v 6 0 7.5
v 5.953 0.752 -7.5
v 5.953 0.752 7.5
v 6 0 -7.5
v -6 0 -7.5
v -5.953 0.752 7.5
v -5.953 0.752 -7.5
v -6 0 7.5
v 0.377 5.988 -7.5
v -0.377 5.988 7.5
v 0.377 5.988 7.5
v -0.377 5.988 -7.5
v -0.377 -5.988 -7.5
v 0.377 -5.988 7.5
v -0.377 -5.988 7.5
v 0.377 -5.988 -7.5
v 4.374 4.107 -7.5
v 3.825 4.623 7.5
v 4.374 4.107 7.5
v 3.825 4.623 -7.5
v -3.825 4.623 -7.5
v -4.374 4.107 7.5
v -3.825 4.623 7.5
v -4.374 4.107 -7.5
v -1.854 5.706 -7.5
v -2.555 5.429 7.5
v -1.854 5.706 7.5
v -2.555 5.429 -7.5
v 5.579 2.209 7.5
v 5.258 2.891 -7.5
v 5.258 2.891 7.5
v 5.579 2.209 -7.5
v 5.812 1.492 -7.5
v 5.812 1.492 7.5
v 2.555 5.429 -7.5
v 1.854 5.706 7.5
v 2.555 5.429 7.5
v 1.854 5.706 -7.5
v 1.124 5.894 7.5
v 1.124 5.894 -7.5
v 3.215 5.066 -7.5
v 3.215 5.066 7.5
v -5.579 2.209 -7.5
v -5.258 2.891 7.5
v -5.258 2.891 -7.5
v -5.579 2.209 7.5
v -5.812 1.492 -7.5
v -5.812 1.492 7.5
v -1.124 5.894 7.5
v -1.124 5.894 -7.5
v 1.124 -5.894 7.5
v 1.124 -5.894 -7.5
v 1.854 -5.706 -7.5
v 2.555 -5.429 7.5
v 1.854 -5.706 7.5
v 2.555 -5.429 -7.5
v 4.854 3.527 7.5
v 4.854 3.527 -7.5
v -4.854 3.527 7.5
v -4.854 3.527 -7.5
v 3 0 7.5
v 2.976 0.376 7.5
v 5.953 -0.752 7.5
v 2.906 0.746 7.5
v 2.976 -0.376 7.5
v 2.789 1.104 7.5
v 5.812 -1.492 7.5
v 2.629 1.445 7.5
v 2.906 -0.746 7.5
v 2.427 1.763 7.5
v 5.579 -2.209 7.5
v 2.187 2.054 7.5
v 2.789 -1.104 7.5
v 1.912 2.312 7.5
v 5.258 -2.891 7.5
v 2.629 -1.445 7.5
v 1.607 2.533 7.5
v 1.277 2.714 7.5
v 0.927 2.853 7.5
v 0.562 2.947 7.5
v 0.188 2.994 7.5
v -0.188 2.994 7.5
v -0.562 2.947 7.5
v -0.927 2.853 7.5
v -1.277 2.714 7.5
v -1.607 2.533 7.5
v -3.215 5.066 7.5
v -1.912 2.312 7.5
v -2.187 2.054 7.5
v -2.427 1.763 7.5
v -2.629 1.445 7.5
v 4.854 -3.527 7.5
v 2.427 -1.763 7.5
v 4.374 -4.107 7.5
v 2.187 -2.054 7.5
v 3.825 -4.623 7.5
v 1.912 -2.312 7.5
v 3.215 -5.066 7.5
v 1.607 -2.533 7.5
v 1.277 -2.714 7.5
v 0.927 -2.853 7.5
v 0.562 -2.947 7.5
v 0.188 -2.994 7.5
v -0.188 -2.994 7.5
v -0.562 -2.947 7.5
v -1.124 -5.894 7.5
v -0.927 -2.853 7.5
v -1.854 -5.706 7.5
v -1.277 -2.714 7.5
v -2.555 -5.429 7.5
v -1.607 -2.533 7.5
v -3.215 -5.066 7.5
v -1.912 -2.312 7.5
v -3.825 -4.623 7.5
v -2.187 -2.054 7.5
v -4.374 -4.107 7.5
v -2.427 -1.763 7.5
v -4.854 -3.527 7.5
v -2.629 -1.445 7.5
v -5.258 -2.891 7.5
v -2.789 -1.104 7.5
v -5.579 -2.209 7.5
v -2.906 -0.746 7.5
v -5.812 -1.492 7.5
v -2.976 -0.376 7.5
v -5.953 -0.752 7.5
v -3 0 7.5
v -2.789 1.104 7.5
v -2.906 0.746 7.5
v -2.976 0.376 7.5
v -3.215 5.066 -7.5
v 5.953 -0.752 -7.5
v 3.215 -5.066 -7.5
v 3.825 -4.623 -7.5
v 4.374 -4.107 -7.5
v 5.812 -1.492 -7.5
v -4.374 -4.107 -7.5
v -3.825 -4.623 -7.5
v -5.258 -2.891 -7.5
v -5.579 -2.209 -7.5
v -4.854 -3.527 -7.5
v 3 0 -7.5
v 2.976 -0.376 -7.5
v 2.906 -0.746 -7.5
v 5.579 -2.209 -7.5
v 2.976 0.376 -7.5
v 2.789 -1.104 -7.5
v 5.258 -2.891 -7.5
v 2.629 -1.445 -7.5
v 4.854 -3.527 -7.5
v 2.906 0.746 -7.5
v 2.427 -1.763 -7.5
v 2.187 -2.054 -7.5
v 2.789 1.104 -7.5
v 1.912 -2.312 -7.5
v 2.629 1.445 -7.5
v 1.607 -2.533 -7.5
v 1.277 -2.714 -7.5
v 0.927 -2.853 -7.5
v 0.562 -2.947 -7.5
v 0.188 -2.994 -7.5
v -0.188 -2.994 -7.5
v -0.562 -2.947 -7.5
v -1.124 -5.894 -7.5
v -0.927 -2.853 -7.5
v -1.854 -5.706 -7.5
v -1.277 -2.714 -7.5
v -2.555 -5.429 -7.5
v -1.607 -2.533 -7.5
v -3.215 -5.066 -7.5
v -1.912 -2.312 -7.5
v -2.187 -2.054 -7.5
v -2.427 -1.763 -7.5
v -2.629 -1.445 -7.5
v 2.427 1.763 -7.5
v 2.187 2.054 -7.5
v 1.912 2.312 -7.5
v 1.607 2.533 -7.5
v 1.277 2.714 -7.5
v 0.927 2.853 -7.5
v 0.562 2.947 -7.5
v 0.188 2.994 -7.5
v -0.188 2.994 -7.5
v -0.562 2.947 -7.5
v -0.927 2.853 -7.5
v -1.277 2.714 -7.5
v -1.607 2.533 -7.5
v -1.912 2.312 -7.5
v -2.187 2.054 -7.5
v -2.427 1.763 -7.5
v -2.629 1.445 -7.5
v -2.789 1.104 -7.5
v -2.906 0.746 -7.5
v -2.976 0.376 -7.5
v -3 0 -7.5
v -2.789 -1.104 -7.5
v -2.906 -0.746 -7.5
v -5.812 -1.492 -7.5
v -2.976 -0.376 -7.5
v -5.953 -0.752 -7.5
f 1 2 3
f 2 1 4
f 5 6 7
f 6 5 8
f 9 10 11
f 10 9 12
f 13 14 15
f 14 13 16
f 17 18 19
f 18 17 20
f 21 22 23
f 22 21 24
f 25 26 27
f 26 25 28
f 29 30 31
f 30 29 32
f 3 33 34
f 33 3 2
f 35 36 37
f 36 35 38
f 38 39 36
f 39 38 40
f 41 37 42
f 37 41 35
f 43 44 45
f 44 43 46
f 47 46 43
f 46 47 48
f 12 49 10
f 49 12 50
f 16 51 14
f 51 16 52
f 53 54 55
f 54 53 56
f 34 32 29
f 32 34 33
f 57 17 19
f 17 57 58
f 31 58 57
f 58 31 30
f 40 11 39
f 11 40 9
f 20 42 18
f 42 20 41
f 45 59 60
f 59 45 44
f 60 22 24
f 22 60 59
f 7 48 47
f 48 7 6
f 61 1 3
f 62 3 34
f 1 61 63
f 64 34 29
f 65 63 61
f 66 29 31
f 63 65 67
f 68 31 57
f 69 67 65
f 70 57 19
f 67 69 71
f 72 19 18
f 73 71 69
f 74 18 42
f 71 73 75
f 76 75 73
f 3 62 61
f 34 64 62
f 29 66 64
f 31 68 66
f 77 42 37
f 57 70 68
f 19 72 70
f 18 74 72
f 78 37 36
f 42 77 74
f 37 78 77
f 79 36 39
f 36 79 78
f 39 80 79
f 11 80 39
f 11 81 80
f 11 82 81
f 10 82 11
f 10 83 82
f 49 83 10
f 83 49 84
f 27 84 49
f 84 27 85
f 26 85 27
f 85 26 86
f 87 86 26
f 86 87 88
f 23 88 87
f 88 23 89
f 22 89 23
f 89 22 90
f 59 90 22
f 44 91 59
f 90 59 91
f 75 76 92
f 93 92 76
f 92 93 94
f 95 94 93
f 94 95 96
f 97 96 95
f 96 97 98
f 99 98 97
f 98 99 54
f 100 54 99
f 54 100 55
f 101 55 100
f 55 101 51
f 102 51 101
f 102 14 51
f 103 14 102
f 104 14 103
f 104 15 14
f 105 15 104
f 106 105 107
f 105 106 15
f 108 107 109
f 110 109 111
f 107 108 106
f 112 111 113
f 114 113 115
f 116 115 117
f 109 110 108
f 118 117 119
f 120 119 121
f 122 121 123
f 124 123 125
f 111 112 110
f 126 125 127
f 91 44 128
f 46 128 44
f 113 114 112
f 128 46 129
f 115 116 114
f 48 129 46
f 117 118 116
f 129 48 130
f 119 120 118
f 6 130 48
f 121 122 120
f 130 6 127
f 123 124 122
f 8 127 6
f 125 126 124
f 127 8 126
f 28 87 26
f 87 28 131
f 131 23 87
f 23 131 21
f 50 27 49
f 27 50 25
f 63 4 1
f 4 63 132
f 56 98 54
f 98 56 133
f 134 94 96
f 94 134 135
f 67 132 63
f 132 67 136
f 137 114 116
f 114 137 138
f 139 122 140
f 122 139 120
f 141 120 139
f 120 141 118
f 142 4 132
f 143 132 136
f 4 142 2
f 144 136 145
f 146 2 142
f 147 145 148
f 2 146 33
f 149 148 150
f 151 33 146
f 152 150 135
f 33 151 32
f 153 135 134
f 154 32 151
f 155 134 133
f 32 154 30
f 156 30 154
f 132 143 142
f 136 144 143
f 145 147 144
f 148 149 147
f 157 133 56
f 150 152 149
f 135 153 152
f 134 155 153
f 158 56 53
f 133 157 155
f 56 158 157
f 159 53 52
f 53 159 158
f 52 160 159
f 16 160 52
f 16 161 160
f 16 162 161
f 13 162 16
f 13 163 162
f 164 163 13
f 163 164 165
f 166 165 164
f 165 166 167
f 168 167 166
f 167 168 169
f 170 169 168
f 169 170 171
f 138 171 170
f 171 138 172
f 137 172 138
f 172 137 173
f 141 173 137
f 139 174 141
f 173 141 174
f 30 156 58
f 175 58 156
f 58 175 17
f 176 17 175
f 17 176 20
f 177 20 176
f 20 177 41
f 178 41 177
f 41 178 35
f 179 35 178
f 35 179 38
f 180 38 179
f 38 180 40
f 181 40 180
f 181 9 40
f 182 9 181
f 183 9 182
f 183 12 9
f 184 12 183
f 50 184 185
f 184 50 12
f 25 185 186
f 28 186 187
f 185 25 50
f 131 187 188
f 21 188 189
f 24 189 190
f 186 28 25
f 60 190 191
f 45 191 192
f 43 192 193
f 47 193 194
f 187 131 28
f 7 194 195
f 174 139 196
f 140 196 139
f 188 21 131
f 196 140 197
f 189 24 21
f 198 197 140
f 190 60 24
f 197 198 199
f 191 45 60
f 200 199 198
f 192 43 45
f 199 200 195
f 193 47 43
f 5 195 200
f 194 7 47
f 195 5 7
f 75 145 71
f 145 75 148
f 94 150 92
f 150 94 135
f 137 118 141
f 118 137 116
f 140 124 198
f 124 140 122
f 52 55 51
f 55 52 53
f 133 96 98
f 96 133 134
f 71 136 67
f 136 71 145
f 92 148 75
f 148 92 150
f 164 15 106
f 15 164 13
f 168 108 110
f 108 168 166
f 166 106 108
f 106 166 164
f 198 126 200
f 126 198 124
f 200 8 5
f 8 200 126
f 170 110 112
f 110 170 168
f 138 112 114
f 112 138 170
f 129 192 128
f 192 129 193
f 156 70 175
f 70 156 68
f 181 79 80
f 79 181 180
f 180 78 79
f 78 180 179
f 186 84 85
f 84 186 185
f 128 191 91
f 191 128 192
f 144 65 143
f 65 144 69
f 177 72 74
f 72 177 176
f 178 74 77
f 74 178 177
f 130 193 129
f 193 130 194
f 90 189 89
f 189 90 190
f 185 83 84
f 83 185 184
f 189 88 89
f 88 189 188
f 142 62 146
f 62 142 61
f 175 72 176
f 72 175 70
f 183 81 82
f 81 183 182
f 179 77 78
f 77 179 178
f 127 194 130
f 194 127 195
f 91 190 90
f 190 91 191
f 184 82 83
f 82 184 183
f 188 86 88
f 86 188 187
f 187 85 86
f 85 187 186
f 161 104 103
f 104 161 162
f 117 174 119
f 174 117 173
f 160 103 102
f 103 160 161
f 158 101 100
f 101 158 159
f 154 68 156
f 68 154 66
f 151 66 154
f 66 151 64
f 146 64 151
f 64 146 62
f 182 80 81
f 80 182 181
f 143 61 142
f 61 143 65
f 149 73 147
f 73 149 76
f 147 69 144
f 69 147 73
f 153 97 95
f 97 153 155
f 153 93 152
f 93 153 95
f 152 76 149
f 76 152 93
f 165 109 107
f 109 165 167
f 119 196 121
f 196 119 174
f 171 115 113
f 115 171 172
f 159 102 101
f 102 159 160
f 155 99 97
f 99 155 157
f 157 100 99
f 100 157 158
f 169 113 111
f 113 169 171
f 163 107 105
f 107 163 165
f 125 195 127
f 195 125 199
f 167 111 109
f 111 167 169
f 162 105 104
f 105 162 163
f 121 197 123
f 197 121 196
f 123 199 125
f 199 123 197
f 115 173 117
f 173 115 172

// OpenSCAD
$fn = 50;


difference() {
	union() {
		translate(v = [0, 0, -7.5000000000]) {
			cylinder(h = 15, r = 6.0000000000);
		}
	}
	union() {
		translate(v = [0, 0, -100.0000000000]) {
			cylinder(h = 200, r = 3);
		}
	}
}
